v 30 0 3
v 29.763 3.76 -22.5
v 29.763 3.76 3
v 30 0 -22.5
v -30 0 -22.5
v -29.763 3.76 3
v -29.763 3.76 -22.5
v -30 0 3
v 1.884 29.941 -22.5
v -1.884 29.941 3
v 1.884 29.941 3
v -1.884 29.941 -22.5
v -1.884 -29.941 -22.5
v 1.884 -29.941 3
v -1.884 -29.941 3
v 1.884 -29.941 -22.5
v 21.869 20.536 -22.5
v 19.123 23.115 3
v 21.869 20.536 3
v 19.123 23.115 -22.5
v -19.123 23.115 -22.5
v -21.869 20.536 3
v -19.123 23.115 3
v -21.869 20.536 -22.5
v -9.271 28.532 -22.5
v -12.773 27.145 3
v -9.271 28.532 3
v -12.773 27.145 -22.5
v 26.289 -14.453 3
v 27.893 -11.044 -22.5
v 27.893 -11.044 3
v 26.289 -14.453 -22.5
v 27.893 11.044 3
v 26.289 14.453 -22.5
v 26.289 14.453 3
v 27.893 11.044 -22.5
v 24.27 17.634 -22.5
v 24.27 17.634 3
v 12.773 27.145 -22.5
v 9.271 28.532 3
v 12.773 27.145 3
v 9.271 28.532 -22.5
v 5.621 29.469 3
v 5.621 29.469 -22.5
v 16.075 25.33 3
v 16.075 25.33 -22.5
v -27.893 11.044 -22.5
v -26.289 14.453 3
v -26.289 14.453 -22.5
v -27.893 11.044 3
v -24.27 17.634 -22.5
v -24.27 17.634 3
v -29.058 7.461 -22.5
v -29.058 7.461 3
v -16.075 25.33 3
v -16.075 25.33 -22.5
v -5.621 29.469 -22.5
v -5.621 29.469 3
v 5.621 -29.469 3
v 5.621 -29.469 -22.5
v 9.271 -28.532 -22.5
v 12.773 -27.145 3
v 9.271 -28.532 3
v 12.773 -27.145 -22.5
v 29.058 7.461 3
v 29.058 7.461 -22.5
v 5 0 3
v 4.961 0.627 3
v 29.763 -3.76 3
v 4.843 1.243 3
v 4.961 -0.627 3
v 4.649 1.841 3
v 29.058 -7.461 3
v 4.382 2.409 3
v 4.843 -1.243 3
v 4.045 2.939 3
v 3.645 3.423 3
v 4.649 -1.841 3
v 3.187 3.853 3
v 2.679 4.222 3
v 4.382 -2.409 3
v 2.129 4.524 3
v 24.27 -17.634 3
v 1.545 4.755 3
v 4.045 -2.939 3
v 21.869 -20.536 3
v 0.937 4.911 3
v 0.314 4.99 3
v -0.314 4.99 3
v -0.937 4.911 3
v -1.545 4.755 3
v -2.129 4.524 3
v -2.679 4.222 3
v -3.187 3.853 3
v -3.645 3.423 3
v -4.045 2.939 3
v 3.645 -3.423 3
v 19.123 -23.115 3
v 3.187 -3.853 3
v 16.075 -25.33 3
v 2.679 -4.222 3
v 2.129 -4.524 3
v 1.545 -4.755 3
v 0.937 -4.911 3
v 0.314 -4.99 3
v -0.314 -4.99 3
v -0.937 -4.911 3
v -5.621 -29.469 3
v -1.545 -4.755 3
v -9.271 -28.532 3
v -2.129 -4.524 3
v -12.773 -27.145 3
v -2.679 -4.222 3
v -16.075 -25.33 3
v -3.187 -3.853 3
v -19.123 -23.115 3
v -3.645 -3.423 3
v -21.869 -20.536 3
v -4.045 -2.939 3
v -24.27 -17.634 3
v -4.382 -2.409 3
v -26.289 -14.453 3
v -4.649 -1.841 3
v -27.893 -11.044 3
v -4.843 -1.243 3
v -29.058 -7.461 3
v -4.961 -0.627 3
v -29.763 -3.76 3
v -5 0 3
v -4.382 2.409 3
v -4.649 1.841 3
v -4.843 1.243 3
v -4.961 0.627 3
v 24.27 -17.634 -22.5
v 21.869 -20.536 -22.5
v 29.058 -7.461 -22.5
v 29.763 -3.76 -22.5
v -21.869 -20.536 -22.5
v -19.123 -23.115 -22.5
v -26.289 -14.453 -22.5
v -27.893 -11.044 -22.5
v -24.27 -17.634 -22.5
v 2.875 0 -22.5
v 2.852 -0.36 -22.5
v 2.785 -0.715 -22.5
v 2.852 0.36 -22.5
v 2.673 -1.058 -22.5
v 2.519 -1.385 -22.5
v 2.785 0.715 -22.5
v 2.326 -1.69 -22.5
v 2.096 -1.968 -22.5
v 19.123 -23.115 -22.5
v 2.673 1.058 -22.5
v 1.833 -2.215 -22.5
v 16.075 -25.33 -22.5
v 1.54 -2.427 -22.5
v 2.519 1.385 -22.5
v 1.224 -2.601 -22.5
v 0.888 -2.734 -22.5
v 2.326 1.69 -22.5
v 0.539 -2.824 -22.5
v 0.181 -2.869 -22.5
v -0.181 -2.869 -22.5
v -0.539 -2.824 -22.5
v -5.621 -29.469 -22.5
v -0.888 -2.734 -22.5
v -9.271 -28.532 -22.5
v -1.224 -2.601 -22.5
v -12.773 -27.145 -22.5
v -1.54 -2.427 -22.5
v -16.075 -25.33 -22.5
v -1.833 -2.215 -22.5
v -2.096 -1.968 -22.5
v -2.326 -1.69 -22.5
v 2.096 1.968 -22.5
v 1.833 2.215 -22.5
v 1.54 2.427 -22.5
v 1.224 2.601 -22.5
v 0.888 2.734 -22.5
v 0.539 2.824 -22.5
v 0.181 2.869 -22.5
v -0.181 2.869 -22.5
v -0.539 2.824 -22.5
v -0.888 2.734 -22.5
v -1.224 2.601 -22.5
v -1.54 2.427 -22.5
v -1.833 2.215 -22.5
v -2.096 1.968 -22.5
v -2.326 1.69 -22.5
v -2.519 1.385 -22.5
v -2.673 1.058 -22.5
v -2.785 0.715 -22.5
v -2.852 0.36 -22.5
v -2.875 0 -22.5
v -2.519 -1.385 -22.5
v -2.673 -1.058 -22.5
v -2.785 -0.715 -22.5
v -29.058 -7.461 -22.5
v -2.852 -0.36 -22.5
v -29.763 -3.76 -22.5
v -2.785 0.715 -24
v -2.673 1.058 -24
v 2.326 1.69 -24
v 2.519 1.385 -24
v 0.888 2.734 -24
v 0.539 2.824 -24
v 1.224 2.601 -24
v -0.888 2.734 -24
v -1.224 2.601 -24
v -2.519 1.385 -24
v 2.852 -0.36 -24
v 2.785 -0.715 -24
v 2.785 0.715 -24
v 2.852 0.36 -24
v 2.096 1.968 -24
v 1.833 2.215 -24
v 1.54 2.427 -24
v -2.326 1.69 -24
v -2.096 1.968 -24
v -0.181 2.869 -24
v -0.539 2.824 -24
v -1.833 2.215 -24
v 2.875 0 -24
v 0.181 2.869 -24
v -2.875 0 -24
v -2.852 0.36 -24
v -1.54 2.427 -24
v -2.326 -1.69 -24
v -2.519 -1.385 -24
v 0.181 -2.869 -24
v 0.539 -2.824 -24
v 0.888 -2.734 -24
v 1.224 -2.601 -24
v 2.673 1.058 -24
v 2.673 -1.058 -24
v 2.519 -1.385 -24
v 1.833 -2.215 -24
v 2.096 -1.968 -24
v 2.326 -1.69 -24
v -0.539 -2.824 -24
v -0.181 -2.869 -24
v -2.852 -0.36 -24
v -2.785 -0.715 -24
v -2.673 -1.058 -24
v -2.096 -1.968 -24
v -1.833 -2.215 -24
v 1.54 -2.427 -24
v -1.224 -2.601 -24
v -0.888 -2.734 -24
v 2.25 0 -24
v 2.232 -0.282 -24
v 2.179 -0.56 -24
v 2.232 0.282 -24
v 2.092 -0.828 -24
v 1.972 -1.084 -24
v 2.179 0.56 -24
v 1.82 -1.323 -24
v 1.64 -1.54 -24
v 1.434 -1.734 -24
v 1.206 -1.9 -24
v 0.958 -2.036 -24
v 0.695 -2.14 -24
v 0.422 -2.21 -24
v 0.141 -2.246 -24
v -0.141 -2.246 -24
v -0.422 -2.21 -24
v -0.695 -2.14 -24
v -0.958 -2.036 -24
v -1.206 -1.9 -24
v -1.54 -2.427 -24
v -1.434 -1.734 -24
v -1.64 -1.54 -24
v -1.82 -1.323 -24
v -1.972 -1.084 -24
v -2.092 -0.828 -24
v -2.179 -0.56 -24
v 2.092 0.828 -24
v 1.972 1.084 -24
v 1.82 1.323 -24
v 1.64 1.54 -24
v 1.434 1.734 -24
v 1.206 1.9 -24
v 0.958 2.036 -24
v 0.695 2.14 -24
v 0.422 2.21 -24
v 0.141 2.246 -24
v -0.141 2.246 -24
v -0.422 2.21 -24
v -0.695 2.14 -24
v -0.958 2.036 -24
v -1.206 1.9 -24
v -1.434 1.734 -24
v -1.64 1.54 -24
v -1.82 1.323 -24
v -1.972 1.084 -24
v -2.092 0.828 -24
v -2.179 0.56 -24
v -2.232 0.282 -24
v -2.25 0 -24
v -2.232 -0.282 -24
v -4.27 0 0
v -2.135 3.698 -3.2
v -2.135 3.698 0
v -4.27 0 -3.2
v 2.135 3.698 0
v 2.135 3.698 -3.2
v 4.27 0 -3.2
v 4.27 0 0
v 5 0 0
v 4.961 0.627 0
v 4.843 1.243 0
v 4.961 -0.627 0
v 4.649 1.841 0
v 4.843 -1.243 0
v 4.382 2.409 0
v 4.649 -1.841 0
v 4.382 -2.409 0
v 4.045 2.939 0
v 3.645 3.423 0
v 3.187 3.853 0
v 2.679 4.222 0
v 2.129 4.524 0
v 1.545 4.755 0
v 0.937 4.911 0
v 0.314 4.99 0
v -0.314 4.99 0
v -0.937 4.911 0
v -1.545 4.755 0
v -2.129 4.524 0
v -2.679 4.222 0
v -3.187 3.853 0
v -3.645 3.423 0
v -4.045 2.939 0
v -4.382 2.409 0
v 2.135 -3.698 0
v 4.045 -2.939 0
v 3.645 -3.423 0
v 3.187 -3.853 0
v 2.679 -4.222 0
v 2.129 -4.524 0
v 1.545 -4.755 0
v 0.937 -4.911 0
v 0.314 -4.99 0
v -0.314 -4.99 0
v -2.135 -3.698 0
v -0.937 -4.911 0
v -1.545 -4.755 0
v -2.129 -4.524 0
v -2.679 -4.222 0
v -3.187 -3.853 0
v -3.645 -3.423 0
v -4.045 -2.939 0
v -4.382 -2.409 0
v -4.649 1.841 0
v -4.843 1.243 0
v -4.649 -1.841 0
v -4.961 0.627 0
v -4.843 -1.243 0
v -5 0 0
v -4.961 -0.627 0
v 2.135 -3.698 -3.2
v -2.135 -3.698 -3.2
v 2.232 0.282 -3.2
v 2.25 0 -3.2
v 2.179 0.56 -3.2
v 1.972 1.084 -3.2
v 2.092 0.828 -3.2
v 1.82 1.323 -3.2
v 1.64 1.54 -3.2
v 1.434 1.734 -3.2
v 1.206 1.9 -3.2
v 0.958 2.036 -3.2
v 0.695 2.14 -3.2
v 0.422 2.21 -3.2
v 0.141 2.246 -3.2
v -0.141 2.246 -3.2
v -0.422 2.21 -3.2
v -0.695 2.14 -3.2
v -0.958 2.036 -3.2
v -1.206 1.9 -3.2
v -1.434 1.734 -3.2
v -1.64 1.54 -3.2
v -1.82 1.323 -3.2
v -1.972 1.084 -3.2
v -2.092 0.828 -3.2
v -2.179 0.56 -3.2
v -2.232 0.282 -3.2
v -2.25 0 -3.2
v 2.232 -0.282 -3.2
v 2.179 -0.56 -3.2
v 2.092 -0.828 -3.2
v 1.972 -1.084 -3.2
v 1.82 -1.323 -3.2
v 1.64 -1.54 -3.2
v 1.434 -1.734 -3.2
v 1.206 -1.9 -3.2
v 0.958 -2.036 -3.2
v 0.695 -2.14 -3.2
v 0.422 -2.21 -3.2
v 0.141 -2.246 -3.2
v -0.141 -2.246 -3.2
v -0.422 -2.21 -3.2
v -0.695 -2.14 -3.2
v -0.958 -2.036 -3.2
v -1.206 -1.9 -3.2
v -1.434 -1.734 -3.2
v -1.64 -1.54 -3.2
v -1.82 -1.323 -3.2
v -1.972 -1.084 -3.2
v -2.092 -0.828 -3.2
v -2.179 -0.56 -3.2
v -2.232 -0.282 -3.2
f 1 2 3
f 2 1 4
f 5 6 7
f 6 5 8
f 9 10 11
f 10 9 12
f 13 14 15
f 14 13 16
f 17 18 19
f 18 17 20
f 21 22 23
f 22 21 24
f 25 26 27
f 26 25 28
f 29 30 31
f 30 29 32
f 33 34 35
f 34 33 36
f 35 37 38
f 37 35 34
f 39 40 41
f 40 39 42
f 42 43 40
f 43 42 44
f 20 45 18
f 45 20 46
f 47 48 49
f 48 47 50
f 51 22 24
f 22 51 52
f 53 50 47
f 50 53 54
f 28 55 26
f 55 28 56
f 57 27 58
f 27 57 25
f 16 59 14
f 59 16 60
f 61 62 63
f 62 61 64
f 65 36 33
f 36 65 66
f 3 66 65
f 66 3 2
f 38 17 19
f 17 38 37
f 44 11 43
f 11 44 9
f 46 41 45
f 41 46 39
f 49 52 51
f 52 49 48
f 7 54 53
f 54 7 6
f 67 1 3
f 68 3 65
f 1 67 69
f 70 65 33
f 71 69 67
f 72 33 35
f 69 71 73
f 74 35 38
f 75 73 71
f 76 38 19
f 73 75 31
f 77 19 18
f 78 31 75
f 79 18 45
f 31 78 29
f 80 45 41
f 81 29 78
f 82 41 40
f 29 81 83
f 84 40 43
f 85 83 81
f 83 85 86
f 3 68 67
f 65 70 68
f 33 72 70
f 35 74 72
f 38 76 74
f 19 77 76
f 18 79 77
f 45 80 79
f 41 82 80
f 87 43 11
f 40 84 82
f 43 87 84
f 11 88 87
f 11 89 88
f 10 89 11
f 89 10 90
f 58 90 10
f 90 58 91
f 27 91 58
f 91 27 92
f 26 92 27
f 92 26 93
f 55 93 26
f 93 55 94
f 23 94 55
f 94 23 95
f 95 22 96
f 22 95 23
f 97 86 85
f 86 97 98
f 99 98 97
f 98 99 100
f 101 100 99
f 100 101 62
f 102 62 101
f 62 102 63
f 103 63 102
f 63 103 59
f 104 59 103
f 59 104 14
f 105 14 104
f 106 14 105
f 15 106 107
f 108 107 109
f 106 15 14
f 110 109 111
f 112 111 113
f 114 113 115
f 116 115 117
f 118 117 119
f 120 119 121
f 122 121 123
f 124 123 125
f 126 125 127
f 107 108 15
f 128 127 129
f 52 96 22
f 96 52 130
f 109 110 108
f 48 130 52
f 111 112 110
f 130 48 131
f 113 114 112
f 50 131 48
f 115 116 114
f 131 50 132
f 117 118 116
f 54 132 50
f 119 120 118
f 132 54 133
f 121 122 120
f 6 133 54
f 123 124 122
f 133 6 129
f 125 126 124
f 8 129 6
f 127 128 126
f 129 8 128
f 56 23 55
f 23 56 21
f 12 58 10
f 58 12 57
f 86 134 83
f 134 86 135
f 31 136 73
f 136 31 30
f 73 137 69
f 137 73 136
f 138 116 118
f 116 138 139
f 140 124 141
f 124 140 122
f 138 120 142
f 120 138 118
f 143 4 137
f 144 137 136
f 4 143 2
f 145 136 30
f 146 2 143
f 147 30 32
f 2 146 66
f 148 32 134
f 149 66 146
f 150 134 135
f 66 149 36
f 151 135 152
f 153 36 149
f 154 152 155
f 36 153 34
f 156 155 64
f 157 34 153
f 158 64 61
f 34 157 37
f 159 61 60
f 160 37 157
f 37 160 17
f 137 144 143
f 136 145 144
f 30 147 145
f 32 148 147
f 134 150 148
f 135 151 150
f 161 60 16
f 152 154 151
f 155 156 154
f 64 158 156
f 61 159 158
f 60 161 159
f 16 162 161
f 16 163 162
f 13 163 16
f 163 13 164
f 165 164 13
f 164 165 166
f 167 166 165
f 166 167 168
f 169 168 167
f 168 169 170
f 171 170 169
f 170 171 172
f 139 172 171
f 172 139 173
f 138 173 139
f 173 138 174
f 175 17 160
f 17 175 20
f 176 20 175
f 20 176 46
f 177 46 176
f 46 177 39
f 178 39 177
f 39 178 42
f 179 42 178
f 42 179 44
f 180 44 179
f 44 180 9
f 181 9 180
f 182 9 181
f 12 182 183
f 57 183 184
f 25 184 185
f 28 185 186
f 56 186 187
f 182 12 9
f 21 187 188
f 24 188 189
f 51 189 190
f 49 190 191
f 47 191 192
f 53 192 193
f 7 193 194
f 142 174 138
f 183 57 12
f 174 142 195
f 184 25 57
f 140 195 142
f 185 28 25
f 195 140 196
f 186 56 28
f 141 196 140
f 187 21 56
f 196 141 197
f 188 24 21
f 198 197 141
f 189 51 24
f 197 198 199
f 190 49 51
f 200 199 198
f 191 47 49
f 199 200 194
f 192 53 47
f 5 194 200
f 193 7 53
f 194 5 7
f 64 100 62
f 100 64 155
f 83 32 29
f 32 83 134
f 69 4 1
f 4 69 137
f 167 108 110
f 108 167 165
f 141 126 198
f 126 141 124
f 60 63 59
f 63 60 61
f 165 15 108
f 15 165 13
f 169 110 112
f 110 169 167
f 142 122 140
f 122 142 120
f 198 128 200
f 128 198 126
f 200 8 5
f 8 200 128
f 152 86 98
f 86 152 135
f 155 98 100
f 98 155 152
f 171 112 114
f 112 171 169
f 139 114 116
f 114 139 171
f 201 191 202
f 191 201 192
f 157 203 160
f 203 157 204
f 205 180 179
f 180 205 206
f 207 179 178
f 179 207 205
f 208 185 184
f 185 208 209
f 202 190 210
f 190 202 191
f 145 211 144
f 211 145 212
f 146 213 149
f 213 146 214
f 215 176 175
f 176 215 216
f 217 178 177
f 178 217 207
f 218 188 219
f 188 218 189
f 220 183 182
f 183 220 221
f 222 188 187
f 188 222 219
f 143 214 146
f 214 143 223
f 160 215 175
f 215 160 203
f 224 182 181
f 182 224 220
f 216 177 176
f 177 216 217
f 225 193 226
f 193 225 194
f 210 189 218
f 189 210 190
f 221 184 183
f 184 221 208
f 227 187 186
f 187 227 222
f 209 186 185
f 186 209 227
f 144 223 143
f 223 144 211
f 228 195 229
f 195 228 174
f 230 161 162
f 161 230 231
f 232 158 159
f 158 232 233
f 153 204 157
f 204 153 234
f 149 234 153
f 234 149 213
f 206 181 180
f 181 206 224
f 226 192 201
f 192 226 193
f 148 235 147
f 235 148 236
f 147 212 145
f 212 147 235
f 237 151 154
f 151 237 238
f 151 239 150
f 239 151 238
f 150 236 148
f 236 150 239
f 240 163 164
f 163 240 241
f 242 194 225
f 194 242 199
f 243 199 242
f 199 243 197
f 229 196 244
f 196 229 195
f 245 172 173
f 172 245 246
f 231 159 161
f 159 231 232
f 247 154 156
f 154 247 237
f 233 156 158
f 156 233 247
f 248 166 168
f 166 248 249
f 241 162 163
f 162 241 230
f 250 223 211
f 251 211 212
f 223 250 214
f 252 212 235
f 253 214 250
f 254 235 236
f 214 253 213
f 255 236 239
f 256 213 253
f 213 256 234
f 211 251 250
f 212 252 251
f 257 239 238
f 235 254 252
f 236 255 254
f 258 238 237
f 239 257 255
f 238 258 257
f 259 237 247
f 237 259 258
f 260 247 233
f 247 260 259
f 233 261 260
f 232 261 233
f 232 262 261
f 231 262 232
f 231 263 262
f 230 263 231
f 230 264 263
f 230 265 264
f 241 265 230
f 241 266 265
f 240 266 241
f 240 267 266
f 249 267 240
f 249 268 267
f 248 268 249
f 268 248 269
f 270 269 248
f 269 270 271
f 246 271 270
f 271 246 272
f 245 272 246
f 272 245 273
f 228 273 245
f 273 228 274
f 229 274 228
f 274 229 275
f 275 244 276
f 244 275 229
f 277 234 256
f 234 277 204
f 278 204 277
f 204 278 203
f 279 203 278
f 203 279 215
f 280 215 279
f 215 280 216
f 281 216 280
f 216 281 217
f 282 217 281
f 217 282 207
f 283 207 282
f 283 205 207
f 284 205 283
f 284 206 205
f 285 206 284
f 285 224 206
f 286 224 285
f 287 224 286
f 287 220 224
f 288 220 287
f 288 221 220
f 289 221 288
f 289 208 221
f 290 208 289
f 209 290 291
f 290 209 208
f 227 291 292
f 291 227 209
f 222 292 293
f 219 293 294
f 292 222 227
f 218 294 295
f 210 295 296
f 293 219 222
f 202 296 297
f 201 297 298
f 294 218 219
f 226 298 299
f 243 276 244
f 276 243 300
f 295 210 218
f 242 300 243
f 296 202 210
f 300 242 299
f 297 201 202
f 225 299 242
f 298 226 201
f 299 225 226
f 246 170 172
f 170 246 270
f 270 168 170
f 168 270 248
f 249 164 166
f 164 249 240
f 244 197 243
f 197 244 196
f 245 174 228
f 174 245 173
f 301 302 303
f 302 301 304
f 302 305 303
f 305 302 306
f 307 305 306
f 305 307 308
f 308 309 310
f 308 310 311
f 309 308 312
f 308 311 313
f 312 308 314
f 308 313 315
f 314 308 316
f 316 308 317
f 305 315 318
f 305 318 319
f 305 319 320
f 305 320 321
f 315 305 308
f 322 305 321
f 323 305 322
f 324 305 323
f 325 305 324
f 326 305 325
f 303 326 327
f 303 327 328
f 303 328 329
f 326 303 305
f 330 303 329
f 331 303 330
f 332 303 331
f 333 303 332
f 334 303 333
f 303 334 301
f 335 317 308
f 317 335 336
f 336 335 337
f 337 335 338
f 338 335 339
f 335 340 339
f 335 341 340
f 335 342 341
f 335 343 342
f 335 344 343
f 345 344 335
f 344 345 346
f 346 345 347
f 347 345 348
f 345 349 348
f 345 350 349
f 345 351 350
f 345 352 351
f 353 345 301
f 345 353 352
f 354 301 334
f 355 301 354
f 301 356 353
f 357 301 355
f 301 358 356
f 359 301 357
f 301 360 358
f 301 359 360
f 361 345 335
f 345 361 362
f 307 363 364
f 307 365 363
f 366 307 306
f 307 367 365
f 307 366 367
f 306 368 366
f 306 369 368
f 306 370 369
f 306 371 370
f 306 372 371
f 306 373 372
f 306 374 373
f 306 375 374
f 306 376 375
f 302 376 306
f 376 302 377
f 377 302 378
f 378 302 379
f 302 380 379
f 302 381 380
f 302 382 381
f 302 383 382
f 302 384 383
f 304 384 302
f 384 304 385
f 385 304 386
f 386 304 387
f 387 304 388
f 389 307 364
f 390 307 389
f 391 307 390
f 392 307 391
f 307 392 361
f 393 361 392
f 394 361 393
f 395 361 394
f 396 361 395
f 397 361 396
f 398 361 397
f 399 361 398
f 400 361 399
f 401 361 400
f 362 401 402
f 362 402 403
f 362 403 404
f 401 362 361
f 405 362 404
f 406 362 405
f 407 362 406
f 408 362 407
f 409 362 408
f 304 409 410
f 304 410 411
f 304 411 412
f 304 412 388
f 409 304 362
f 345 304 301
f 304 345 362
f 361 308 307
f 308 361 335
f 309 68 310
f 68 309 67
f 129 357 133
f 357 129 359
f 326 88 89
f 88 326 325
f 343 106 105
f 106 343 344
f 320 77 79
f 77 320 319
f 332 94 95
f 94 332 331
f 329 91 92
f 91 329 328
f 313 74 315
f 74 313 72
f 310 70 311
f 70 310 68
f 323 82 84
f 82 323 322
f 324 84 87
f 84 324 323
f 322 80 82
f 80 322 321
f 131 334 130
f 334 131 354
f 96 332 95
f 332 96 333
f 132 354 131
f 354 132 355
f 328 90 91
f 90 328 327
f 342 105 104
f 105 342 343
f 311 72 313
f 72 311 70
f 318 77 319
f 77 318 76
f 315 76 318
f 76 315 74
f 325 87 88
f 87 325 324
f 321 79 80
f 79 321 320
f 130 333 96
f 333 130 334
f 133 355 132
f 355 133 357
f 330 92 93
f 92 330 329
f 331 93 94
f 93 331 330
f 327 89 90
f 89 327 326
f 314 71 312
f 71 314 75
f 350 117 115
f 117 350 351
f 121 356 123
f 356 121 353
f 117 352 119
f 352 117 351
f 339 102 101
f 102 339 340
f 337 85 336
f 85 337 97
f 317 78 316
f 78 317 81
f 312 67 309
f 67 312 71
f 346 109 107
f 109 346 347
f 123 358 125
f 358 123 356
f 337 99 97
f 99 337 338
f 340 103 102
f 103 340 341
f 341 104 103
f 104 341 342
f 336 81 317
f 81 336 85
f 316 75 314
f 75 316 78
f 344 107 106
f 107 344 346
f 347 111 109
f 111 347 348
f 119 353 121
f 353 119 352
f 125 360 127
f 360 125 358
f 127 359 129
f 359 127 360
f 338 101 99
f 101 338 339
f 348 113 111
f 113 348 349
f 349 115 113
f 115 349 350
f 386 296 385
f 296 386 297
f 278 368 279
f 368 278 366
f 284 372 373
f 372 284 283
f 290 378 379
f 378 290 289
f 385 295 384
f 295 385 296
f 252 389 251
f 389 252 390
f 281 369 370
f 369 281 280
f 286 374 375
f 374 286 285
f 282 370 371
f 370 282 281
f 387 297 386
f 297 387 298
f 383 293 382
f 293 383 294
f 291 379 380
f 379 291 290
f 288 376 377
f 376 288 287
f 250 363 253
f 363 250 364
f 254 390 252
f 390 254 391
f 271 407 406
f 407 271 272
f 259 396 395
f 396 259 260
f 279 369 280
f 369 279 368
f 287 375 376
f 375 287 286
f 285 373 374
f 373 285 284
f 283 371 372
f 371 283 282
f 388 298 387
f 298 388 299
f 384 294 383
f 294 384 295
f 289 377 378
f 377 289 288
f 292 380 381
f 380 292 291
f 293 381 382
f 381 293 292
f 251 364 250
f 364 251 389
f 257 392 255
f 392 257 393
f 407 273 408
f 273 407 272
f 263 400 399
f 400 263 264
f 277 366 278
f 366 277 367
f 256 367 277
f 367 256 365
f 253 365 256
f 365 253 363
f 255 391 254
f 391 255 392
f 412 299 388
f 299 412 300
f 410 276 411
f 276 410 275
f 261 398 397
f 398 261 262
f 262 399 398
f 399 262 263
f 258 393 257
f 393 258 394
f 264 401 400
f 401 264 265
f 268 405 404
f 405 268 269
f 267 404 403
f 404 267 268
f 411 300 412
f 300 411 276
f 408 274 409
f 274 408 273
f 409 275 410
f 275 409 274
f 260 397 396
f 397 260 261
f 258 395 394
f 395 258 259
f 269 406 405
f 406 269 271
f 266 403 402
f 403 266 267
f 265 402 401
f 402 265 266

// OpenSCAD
$fn = 50;

difference() {
	union() {
		translate(v = [0, 0, -22.5]) {
			cylinder(h = 25.5, r = 30.0);
		}
		#translate(v = [0, 0, -24.0]) {
			cylinder(h = 24, r = 2.875);
		}
	}
	union() {
		translate(v = [0, 0, 0]) {
			rotate(a = [0, 0, 0]) {
				difference() {
					union() {
						translate(v = [0, 0, -3.2]) {
							linear_extrude(height = 3.2) {
								polygon(points = [[4.2698, 0.0], [2.1349000000000005, 3.697755269078796], [-2.134899999999999, 3.6977552690787965], [-4.2698, 5.228996902999369e-16], [-2.134900000000002, -3.6977552690787956], [2.1348999999999974, -3.697755269078798]]);
							}
						}
					}
					union();
				}
			}
		}
		#cylinder(h = 3, r = 5.0);
		#translate(v = [0, 0, -100.0]) {
			cylinder(h = 200, r = 2.25);
		}
	}
}
